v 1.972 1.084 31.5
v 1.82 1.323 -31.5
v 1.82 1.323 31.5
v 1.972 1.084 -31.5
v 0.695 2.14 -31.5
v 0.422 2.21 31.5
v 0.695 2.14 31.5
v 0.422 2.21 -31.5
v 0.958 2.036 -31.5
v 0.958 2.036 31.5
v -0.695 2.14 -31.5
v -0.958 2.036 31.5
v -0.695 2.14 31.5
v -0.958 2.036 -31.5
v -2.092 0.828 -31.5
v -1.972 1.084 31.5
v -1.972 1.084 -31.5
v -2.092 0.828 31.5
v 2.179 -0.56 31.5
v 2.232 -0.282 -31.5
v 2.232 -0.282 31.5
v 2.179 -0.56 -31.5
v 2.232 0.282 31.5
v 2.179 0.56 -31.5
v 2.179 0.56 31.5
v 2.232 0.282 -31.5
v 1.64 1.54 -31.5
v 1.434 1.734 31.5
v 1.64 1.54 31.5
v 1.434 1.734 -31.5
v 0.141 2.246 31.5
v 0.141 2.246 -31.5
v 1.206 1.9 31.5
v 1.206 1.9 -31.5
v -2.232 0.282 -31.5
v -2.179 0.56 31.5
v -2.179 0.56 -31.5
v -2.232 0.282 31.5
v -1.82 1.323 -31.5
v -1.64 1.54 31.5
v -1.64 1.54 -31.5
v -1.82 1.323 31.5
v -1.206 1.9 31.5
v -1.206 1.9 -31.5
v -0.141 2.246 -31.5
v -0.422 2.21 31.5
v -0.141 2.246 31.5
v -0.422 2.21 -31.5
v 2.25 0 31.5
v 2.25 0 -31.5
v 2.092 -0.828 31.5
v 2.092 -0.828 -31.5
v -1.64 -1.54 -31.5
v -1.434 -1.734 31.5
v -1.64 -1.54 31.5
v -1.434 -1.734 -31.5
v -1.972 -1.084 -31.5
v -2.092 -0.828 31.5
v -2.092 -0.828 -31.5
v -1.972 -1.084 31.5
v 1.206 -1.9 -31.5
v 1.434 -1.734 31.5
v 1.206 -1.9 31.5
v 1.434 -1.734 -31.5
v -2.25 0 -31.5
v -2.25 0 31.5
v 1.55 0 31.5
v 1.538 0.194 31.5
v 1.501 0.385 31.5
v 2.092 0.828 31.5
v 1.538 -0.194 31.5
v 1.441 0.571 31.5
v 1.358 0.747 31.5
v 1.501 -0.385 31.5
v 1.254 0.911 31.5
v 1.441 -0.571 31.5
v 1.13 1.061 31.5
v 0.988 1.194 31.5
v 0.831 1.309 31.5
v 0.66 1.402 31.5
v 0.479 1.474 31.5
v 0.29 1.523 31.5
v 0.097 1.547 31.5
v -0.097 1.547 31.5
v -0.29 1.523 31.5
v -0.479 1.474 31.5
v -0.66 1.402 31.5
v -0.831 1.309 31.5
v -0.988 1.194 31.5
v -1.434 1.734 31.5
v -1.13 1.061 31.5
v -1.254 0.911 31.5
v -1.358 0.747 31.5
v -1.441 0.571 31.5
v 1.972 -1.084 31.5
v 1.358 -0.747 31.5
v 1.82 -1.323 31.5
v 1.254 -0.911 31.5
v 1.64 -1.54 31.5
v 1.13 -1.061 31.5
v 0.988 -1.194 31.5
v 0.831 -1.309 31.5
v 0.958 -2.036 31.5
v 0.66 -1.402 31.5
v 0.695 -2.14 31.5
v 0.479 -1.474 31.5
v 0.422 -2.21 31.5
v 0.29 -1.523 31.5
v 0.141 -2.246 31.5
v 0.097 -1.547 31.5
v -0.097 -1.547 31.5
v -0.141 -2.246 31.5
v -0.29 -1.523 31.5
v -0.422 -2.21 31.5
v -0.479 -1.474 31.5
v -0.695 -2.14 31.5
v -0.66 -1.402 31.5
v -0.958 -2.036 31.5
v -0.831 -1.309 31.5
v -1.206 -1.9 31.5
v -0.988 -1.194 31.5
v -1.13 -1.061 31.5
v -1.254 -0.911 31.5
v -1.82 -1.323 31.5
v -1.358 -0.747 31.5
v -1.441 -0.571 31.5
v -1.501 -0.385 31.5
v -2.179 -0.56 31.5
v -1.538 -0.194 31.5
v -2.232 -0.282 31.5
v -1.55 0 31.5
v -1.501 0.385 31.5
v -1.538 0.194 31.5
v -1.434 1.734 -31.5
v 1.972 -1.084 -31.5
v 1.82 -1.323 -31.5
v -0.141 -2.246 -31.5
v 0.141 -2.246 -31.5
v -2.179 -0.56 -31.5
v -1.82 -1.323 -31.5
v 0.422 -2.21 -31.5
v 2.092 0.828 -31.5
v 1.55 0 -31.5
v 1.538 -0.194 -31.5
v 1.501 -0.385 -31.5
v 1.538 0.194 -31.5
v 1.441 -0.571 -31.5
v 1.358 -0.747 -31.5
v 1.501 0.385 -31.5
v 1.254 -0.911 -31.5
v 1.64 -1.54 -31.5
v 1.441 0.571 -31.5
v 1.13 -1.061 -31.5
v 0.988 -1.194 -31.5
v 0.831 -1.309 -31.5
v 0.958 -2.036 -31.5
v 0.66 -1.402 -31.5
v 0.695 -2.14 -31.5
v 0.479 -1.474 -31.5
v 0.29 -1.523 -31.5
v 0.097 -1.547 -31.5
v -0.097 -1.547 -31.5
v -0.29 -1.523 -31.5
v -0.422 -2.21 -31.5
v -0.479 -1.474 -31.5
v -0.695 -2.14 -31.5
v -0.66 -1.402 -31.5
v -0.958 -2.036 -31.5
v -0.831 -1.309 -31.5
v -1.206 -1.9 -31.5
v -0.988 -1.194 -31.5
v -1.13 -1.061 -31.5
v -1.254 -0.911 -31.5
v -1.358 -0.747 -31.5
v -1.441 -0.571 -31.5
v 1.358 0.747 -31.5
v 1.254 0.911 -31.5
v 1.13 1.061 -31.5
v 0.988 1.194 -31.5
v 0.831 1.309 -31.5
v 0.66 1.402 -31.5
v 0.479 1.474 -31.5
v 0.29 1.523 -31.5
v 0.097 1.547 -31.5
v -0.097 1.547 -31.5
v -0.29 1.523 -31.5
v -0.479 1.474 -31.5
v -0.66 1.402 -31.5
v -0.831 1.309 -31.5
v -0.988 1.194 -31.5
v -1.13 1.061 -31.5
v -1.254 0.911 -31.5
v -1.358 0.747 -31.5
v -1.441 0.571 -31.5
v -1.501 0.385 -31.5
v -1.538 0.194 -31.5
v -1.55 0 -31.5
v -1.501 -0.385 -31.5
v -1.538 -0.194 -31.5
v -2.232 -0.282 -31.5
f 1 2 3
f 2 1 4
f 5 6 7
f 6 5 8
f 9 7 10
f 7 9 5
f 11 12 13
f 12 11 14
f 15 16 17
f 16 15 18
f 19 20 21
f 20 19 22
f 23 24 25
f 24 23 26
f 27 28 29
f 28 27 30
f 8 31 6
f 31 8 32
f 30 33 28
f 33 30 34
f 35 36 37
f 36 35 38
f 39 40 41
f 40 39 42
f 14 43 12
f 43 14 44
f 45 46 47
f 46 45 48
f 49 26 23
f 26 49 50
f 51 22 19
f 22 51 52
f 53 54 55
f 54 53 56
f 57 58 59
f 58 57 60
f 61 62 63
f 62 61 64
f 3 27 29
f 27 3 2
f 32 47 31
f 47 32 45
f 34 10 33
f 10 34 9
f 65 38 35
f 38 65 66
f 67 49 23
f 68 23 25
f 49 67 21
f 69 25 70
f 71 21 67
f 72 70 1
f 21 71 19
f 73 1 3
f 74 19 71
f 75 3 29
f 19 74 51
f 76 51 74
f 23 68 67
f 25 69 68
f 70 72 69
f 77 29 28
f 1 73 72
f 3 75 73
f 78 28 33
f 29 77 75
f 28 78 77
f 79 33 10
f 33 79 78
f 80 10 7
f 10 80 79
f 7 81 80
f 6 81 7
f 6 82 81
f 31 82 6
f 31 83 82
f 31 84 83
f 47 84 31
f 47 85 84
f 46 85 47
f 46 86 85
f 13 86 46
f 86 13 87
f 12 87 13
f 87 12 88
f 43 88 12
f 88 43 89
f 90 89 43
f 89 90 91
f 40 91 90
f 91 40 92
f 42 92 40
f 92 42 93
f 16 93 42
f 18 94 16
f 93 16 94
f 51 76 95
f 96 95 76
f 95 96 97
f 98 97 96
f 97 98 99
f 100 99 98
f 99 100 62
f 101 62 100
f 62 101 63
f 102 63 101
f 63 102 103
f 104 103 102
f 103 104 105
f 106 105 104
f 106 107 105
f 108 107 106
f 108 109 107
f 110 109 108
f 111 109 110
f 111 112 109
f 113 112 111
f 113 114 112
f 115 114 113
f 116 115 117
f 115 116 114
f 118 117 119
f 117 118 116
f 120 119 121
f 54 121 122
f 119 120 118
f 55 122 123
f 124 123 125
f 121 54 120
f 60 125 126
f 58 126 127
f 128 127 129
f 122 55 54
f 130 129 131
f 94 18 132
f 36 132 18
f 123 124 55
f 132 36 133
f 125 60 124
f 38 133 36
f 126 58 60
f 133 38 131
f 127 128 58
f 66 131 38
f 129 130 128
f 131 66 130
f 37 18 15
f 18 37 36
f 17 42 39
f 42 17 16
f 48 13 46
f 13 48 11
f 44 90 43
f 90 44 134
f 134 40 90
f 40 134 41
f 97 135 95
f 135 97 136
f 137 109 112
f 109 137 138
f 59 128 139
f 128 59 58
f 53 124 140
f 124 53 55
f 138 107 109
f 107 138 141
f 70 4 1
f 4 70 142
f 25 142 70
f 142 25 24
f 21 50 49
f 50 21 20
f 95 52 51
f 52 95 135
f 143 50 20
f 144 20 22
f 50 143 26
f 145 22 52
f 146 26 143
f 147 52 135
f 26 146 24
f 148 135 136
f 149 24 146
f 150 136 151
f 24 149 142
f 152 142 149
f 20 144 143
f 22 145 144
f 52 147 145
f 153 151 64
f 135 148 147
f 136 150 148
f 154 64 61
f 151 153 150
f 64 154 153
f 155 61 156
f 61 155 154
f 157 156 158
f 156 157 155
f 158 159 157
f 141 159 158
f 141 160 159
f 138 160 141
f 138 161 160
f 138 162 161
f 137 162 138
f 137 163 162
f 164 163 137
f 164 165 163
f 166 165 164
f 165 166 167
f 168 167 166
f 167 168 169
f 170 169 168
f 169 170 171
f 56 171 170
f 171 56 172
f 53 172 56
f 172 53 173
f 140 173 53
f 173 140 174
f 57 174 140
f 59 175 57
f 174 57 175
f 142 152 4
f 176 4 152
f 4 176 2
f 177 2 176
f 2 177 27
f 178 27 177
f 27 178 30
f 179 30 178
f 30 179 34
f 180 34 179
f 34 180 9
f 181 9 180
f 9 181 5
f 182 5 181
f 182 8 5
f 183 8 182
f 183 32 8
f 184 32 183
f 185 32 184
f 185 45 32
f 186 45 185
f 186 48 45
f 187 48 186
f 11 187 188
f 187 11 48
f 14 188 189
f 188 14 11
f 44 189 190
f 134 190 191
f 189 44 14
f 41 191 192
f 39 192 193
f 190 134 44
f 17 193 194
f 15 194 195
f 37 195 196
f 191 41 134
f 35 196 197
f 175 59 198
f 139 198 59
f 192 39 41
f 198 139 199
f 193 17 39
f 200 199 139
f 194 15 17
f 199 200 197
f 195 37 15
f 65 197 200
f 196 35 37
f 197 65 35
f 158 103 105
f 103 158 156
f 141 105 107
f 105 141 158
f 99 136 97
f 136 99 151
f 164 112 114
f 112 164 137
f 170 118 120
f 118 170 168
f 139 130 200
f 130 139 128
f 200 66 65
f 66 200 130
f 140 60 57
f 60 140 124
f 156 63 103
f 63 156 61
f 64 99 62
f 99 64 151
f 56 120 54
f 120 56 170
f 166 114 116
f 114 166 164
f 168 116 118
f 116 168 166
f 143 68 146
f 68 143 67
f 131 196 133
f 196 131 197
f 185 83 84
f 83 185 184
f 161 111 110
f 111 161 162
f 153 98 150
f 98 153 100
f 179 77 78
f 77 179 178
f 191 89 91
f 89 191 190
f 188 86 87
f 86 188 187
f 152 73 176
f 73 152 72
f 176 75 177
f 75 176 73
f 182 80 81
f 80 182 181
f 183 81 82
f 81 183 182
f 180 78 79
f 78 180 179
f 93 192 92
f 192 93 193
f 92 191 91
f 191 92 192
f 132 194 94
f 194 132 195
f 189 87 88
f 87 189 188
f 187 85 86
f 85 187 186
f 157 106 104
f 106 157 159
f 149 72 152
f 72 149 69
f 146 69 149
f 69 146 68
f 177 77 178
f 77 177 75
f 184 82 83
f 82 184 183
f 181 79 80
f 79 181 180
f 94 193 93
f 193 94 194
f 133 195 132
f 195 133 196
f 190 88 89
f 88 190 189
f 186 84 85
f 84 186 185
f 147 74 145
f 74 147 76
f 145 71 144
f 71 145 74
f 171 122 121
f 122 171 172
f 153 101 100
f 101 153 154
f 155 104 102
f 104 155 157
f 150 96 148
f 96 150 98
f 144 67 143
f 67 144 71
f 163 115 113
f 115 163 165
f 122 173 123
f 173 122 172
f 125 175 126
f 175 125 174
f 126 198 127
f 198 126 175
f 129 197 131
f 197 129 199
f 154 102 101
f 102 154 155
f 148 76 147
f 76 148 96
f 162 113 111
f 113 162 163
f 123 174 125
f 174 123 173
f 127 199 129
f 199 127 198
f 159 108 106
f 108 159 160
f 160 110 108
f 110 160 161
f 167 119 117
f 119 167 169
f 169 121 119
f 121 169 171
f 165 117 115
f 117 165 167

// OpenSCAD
$fn = 50;


difference() {
	union() {
		translate(v = [0, 0, -31.5000000000]) {
			cylinder(h = 63, r = 2.2500000000);
		}
	}
	union() {
		translate(v = [0, 0, -100.0000000000]) {
			cylinder(h = 200, r = 1.5500000000);
		}
	}
}
